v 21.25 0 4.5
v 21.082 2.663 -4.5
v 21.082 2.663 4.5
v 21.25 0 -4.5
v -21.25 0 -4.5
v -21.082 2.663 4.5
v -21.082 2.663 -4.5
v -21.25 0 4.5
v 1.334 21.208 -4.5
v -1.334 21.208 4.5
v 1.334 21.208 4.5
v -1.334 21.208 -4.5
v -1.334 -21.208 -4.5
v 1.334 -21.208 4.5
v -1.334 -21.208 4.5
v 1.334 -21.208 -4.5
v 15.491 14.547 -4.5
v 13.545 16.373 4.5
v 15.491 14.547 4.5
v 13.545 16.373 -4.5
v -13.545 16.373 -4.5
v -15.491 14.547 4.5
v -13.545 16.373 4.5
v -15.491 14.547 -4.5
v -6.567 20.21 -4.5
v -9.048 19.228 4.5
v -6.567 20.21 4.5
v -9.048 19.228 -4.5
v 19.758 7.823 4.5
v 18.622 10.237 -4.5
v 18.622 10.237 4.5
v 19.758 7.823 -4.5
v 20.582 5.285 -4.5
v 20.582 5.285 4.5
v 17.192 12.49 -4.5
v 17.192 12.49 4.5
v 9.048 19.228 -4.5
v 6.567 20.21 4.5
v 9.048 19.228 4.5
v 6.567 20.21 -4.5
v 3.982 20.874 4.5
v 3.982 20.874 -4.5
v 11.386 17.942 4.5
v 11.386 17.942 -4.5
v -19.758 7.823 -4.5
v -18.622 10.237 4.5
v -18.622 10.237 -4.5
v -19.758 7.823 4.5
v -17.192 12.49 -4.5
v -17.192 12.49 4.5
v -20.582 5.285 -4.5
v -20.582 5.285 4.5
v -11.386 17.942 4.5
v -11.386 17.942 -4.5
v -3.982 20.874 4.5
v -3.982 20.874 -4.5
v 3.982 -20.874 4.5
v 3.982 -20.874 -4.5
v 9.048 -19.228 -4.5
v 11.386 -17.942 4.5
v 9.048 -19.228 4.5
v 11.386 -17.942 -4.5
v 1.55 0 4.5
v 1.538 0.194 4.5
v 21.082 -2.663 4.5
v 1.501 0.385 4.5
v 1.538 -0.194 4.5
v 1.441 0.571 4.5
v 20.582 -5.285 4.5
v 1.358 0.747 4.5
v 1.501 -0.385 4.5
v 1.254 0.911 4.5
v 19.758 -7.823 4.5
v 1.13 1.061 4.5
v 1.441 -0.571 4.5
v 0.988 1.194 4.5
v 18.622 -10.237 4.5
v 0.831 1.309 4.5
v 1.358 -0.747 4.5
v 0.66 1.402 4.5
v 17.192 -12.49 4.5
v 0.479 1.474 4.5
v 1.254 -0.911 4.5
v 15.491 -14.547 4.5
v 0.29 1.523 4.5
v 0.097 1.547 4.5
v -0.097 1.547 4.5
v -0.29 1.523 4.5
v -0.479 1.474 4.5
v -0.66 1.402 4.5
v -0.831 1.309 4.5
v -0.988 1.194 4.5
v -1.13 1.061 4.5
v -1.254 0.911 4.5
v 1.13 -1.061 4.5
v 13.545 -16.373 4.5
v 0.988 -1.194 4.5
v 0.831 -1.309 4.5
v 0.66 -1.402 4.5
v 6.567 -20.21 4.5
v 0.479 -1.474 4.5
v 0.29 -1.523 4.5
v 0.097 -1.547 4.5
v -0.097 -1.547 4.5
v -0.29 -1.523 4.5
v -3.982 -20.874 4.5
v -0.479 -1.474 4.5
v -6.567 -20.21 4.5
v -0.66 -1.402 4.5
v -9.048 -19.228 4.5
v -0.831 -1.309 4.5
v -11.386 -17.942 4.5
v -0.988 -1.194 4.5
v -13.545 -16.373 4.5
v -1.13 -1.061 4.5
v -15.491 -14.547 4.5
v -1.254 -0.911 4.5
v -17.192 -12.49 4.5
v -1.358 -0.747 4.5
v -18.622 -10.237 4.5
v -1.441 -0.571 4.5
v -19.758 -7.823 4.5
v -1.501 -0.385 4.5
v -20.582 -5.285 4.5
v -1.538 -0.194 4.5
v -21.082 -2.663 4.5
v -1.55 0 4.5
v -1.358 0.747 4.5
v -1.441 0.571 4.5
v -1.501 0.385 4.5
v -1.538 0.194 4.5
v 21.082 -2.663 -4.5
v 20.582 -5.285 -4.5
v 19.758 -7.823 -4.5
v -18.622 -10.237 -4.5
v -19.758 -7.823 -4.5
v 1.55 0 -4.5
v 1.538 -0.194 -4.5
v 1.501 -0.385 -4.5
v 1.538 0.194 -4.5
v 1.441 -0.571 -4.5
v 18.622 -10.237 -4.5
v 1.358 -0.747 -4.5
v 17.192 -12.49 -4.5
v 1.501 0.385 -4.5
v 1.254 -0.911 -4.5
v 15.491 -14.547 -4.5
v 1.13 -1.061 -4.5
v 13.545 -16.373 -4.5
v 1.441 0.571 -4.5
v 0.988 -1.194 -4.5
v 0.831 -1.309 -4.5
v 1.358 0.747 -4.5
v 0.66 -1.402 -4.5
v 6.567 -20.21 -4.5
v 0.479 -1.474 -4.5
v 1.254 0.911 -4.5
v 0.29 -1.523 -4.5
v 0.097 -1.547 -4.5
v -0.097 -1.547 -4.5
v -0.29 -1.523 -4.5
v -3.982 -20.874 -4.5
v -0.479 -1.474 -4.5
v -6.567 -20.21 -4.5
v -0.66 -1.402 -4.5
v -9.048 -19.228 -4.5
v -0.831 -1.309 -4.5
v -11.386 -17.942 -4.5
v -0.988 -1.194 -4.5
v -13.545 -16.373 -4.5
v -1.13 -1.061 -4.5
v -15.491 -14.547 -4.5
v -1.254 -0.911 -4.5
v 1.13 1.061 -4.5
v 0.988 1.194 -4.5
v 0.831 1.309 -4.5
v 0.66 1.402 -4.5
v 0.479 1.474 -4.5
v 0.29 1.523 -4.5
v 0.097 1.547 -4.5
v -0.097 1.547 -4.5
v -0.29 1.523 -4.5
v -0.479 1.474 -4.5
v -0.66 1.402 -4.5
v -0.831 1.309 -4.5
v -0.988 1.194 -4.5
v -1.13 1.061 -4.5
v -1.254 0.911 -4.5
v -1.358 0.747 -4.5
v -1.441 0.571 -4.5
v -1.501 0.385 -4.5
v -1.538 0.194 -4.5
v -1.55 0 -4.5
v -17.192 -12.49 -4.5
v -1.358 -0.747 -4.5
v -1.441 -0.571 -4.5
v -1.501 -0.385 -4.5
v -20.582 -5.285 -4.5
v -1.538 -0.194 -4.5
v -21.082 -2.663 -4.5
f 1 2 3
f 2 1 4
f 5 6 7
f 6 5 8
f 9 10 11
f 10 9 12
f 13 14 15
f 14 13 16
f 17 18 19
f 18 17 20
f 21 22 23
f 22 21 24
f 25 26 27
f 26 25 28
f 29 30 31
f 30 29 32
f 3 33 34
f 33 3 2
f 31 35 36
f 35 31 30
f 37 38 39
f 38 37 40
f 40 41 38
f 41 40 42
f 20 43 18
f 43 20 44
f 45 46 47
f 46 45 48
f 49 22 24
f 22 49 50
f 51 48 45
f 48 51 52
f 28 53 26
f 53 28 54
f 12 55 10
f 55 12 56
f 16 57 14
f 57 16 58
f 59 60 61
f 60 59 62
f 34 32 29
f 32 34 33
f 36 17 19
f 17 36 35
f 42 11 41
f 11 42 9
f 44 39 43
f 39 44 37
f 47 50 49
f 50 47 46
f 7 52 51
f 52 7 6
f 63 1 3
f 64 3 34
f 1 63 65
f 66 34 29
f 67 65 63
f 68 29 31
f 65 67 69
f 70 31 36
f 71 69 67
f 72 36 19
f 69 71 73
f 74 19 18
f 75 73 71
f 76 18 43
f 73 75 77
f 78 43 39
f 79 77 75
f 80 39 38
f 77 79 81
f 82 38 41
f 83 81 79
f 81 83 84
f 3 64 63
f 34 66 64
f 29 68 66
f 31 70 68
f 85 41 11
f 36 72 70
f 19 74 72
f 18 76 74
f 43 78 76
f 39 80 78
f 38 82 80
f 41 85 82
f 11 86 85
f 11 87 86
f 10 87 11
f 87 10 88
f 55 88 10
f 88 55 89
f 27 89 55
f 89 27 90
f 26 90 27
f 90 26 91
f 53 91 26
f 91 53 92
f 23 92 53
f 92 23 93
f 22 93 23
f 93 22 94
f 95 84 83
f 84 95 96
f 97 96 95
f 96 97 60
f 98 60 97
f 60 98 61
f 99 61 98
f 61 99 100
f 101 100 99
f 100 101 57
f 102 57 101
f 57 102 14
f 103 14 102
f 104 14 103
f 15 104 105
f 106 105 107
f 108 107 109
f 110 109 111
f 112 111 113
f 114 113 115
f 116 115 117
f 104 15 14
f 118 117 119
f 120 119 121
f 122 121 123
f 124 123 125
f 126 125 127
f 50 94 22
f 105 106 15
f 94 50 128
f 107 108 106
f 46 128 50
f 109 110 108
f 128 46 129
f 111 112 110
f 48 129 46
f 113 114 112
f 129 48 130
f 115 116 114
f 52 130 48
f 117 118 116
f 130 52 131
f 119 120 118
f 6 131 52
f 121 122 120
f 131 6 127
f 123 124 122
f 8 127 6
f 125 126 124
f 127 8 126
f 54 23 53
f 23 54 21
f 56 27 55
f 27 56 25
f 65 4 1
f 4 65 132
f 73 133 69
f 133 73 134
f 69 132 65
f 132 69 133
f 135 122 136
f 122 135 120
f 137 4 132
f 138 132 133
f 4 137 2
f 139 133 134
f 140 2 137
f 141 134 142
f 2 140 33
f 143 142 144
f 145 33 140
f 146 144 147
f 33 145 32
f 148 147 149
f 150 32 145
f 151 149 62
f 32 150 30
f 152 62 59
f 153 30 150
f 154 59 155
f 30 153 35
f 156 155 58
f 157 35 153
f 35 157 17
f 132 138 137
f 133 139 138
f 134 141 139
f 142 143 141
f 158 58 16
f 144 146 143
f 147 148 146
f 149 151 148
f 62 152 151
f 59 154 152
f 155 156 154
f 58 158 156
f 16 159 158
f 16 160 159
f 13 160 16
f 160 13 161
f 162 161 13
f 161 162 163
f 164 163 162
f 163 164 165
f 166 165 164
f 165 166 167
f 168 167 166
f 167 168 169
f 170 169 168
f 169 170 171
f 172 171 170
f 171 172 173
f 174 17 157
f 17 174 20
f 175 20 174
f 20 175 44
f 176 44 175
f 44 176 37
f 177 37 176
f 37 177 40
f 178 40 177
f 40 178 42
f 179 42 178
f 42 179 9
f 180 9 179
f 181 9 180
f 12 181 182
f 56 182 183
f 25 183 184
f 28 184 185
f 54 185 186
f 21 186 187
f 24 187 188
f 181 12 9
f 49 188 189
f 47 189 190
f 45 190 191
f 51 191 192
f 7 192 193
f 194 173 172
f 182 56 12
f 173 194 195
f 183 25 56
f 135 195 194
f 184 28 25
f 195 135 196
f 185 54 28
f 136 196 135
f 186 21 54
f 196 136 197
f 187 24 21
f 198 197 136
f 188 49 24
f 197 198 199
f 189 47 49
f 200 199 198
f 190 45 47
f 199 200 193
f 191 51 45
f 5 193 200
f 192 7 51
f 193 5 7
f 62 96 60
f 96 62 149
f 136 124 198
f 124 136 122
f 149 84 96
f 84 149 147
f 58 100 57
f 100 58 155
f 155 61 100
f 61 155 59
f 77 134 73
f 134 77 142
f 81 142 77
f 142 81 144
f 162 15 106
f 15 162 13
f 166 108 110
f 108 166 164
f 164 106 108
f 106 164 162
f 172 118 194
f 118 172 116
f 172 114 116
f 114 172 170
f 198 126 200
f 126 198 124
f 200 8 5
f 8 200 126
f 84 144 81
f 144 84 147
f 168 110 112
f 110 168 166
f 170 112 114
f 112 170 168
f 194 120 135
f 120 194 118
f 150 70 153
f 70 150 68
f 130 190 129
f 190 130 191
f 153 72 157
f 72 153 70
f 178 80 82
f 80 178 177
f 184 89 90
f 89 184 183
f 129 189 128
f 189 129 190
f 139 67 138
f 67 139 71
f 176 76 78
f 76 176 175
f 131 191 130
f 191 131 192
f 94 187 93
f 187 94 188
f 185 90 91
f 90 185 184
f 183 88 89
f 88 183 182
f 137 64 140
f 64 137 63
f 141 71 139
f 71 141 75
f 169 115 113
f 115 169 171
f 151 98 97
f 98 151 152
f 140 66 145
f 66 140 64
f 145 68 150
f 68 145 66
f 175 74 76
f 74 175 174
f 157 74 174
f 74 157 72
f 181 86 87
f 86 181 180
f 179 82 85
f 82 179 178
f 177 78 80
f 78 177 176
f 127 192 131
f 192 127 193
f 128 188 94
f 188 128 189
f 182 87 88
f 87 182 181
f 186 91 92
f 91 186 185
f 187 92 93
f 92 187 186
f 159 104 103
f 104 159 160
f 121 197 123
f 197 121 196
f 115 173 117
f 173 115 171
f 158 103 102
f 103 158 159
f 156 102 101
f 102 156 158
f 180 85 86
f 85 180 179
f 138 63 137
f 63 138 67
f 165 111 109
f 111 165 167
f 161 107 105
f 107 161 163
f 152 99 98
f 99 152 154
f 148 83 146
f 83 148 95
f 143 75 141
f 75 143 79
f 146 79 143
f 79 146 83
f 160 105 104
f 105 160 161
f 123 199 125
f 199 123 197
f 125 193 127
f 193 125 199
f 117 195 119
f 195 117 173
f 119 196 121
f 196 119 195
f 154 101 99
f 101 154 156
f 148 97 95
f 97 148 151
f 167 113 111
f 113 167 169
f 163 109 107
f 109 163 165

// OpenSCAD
$fn = 50;


difference() {
	union() {
		translate(v = [0, 0, -4.5000000000]) {
			cylinder(h = 9, r = 21.2500000000);
		}
	}
	union() {
		translate(v = [0, 0, -100.0000000000]) {
			cylinder(h = 200, r = 1.5500000000);
		}
	}
}
